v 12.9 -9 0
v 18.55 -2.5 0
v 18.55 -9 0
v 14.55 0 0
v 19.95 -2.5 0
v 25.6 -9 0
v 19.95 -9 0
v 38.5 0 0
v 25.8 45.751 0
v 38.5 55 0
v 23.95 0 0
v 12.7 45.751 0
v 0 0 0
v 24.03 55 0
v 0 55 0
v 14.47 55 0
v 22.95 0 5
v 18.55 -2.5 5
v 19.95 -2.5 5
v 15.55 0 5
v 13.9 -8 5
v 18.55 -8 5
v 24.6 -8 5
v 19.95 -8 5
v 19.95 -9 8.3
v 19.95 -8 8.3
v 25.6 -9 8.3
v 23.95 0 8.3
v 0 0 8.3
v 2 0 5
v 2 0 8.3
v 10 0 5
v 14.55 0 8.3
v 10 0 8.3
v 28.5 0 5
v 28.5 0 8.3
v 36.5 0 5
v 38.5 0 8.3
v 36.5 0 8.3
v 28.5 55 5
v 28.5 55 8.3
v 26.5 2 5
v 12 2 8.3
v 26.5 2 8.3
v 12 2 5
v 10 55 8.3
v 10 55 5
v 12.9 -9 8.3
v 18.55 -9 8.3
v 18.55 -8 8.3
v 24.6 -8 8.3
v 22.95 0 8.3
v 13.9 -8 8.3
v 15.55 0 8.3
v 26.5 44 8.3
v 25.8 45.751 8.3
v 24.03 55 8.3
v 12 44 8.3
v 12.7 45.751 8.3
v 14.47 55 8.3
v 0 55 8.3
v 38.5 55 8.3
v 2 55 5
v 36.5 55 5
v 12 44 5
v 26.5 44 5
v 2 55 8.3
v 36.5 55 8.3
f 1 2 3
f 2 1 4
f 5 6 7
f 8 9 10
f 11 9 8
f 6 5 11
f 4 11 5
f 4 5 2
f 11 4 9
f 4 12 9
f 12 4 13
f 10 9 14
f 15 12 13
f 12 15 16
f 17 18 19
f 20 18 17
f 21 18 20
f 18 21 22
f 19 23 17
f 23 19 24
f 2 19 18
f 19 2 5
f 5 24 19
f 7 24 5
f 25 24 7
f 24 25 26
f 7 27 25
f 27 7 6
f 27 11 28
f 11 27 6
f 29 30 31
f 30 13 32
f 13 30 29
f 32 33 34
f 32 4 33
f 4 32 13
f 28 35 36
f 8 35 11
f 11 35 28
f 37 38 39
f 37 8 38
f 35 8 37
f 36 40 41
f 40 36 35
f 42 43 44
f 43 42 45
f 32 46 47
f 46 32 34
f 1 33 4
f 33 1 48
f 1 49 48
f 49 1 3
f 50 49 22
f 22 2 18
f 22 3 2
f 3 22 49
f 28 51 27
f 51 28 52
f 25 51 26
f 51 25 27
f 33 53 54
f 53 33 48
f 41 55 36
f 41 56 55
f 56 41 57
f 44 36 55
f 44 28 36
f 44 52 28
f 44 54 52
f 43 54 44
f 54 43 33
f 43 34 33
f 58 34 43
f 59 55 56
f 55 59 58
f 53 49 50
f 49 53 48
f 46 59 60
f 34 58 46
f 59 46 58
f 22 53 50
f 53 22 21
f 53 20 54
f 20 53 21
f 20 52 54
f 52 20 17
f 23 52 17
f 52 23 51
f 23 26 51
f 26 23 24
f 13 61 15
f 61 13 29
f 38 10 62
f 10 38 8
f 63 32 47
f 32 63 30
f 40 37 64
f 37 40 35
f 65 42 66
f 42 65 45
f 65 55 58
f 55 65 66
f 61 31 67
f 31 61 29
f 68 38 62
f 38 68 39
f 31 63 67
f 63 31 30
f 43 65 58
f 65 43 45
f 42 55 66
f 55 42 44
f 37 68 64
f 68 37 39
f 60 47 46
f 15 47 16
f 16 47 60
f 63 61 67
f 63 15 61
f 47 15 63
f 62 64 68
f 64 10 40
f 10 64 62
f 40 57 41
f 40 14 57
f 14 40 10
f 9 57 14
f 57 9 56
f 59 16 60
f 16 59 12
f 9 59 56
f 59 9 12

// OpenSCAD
//
// ktRAIL3
//

gap1 = 0.001;
gap2 = 0.002;
m = 8;
w = 38.2+0.3;
t = 2;
h = 8.3;
h2 = 5;
h3 = h-h2;


l = 55;

joint_m();
straight(l-11);
difference()
{
    translate( [0, l-11, 0] ) straight(11, 1);
    translate( [0, l, 0] ) joint_f();
}



module curve_l(r=w, start=0, end=90, step=1, f=0)
{
    a0b = -(r-w);
    a0a = -(r);
    c0b = -(r-w);
    c0a = -(r-w+t);
    c1b = -(r-w+t+m);
    c1a = -(r-w+t+t+m);
    c2b = -(r-t-m-t);
    c2a = -(r-t-m);
    c3b = -(r-t);
    c3a = -(r);
    c4b = -(r-w+t+t+m);
    c4a = -(r-t-m-t);
    
    for( i=[-start: -step: -end+step] )
    {
        a0 = [[a0a*cos(i),a0a*sin(i)],[a0b*cos(i),a0b*sin(i)],[a0b*cos(i-step),a0b*sin(i-step)],[a0a*cos(i-step),a0a*sin(i-step)]];
        b0 = [0,1,2,3];
        a = concat( a0 );
        b = [b0];
        translate( [r, 0, 0] ) linear_extrude( height=h2 ) polygon( a, b );
        
        c0 = [[c0a*cos(i),c0a*sin(i)],[c0b*cos(i),c0b*sin(i)],[c0b*cos(i-step),c0b*sin(i-step)],[c0a*cos(i-step),c0a*sin(i-step)]];
        d0 = [0,1,2,3];
        c1 = [[c1a*cos(i),c1a*sin(i)],[c1b*cos(i),c1b*sin(i)],[c1b*cos(i-step),c1b*sin(i-step)],[c1a*cos(i-step),c1a*sin(i-step)]];
        d1 = [4,5,6,7];
        c2 = [[c2a*cos(i),c2a*sin(i)],[c2b*cos(i),c2b*sin(i)],[c2b*cos(i-step),c2b*sin(i-step)],[c2a*cos(i-step),c2a*sin(i-step)]];
        d2 = [8,9,10,11];
        c3 = [[c3a*cos(i),c3a*sin(i)],[c3b*cos(i),c3b*sin(i)],[c3b*cos(i-step),c3b*sin(i-step)],[c3a*cos(i-step),c3a*sin(i-step)]];
        d3 = [12,13,14,15];
        c4 = [[c4a*cos(i),c4a*sin(i)],[c4b*cos(i),c4b*sin(i)],[c4b*cos(i-step),c4b*sin(i-step)],[c4a*cos(i-step),c4a*sin(i-step)]];
        d4 = [16,17,18,19];

        if (f==1)
        {
            c = concat( c0, c1, c2, c3, c4 );
            d = [d0,d1,d2,d3,d4];
            translate( [r, 0, h2] ) linear_extrude( height=h3 ) polygon( c, d );
        }
        else
        {
            c = concat( c0, c1, c2, c3 );
            d = [d0,d1,d2,d3];
            translate( [r, 0, h2] ) linear_extrude( height=h3 ) polygon( c, d );
        }
    }
}


module curve_r(r=w, start=0, end=90, step=1, f=0)
{
    a0a = r-w;
    a0b = r;
    c0a = r-w;
    c0b = r-w+t;
    c1a = r-w+t+m;
    c1b = r-w+t+t+m;
    c2a = r-t-m-t;
    c2b = r-t-m;
    c3a = r-t;
    c3b = r;
    c4a = r-w+t+t+m;
    c4b = r-t-m-t;
    
    for( i=[start: step: end-step] )
    {
        a0 = [[a0a*cos(i),a0a*sin(i)],[a0b*cos(i),a0b*sin(i)],[a0b*cos(i+step),a0b*sin(i+step)],[a0a*cos(i+step),a0a*sin(i+step)]];
        b0 = [0,1,2,3];
        a = concat( a0 );
        b = [b0];
        translate( [-r+w, 0, 0] ) linear_extrude( height=h2 ) polygon( a, b );
        
        c0 = [[c0a*cos(i),c0a*sin(i)],[c0b*cos(i),c0b*sin(i)],[c0b*cos(i+step),c0b*sin(i+step)],[c0a*cos(i+step),c0a*sin(i+step)]];
        d0 = [0,1,2,3];
        c1 = [[c1a*cos(i),c1a*sin(i)],[c1b*cos(i),c1b*sin(i)],[c1b*cos(i+step),c1b*sin(i+step)],[c1a*cos(i+step),c1a*sin(i+step)]];
        d1 = [4,5,6,7];
        c2 = [[c2a*cos(i),c2a*sin(i)],[c2b*cos(i),c2b*sin(i)],[c2b*cos(i+step),c2b*sin(i+step)],[c2a*cos(i+step),c2a*sin(i+step)]];
        d2 = [8,9,10,11];
        c3 = [[c3a*cos(i),c3a*sin(i)],[c3b*cos(i),c3b*sin(i)],[c3b*cos(i+step),c3b*sin(i+step)],[c3a*cos(i+step),c3a*sin(i+step)]];
        d3 = [12,13,14,15];
        c4 = [[c4a*cos(i),c4a*sin(i)],[c4b*cos(i),c4b*sin(i)],[c4b*cos(i+step),c4b*sin(i+step)],[c4a*cos(i+step),c4a*sin(i+step)]];
        d4 = [16,17,18,19];

        if (f==1)
        {
            c = concat( c0, c1, c2, c3, c4 );
            d = [d0,d1,d2,d3,d4];
            translate( [-r+w, 0, h2] ) linear_extrude( height=h3 ) polygon( c, d );
        }
        else
        {
            c = concat( c0, c1, c2, c3 );
            d = [d0,d1,d2,d3];
            translate( [-r+w, 0, h2] ) linear_extrude( height=h3 ) polygon( c, d );
        }
    }
}



module straight(l, f=0)
{
    a0 = [[0,0],[w,0],[w,l],[0,l]];
    b0 = [0,1,2,3];
    a = concat( a0 );
    b = [b0];
    translate( [0, 0, 0] ) linear_extrude( height=h2 ) polygon( a, b );
    
    c0 = [[0,0],[t,0],[t,l],[0,l]];
    d0 = [0,1,2,3];
    c1 = [[t+m,0],[t+m+t,0],[t+m+t,l],[t+m,l]];
    d1 = [4,5,6,7];
    c2 = [[w-t-m-t,0],[w-t-m,0],[w-t-m,l],[w-t-m-t,l]];
    d2 = [8,9,10,11];
    c3 = [[w-t,0],[w,0],[w,l],[w-t,l]];
    d3 = [12,13,14,15];
    c4 = [[t+m+t,0],[w-t-m-t,0],[w-t-m-t,l],[t+m+t,l]];
    d4 = [16,17,18,19];

    if (f==1)
    {
        c = concat( c0, c1, c2, c3, c4 );
        d = [d0,d1,d2,d3,d4];
        translate( [0, 0, h2] ) linear_extrude( height=h3 ) polygon( c, d );
    }
    else
    {
        c = concat( c0, c1, c2, c3 );
        d = [d0,d1,d2,d3];
        translate( [0, 0, h2] ) linear_extrude( height=h3 ) polygon( c, d );
    }
}

module joint_m()
{
    a0 = [[9.25,t],[9.25,0],[4.7,0],[6.35,-9],[0.7,-9],[0.7,-2.5],[-0.7,-2.5],[-0.7,-9],[-6.35,-9],[-4.7,0],[-9.25,0],[-9.25,t]];
    b0 = [0,1,2,3,4,5,6,7,8,9,10,11];
    a1 = [[4.7-t*0.5,0],[6.35-t*0.5,-9+t*0.5],[0.7,-9+t*0.5],[0.7,-2.5],[-0.7,-2.5],[-0.7,-9+t*0.5],[-6.35+t*0.5,-9+t*0.5],[-4.7+t*0.5,0]];
    b1 = [12,13,14,15,16,17,18,19,20];
    a = concat( a0 );
    b = [b0];
    c = concat( a0, a1 );
    d = [b0, b1];
    translate( [w/2, 0, 0] ) linear_extrude( height=h2 ) polygon( a, b );
    translate( [w/2, 0, h2] ) linear_extrude( height=h3 ) polygon( c, d );
}

module joint_f()
{
    a0 = [[4.78,0],[6.55,-9.25],[-6.55,-9.25],[-4.78,0]];
    b0 = [0,1,2,3];
    a = concat( a0 );
    b = [b0];
    translate( [w/2, gap1, -gap1] ) linear_extrude( height=h+gap2 ) polygon( a, b );
}
